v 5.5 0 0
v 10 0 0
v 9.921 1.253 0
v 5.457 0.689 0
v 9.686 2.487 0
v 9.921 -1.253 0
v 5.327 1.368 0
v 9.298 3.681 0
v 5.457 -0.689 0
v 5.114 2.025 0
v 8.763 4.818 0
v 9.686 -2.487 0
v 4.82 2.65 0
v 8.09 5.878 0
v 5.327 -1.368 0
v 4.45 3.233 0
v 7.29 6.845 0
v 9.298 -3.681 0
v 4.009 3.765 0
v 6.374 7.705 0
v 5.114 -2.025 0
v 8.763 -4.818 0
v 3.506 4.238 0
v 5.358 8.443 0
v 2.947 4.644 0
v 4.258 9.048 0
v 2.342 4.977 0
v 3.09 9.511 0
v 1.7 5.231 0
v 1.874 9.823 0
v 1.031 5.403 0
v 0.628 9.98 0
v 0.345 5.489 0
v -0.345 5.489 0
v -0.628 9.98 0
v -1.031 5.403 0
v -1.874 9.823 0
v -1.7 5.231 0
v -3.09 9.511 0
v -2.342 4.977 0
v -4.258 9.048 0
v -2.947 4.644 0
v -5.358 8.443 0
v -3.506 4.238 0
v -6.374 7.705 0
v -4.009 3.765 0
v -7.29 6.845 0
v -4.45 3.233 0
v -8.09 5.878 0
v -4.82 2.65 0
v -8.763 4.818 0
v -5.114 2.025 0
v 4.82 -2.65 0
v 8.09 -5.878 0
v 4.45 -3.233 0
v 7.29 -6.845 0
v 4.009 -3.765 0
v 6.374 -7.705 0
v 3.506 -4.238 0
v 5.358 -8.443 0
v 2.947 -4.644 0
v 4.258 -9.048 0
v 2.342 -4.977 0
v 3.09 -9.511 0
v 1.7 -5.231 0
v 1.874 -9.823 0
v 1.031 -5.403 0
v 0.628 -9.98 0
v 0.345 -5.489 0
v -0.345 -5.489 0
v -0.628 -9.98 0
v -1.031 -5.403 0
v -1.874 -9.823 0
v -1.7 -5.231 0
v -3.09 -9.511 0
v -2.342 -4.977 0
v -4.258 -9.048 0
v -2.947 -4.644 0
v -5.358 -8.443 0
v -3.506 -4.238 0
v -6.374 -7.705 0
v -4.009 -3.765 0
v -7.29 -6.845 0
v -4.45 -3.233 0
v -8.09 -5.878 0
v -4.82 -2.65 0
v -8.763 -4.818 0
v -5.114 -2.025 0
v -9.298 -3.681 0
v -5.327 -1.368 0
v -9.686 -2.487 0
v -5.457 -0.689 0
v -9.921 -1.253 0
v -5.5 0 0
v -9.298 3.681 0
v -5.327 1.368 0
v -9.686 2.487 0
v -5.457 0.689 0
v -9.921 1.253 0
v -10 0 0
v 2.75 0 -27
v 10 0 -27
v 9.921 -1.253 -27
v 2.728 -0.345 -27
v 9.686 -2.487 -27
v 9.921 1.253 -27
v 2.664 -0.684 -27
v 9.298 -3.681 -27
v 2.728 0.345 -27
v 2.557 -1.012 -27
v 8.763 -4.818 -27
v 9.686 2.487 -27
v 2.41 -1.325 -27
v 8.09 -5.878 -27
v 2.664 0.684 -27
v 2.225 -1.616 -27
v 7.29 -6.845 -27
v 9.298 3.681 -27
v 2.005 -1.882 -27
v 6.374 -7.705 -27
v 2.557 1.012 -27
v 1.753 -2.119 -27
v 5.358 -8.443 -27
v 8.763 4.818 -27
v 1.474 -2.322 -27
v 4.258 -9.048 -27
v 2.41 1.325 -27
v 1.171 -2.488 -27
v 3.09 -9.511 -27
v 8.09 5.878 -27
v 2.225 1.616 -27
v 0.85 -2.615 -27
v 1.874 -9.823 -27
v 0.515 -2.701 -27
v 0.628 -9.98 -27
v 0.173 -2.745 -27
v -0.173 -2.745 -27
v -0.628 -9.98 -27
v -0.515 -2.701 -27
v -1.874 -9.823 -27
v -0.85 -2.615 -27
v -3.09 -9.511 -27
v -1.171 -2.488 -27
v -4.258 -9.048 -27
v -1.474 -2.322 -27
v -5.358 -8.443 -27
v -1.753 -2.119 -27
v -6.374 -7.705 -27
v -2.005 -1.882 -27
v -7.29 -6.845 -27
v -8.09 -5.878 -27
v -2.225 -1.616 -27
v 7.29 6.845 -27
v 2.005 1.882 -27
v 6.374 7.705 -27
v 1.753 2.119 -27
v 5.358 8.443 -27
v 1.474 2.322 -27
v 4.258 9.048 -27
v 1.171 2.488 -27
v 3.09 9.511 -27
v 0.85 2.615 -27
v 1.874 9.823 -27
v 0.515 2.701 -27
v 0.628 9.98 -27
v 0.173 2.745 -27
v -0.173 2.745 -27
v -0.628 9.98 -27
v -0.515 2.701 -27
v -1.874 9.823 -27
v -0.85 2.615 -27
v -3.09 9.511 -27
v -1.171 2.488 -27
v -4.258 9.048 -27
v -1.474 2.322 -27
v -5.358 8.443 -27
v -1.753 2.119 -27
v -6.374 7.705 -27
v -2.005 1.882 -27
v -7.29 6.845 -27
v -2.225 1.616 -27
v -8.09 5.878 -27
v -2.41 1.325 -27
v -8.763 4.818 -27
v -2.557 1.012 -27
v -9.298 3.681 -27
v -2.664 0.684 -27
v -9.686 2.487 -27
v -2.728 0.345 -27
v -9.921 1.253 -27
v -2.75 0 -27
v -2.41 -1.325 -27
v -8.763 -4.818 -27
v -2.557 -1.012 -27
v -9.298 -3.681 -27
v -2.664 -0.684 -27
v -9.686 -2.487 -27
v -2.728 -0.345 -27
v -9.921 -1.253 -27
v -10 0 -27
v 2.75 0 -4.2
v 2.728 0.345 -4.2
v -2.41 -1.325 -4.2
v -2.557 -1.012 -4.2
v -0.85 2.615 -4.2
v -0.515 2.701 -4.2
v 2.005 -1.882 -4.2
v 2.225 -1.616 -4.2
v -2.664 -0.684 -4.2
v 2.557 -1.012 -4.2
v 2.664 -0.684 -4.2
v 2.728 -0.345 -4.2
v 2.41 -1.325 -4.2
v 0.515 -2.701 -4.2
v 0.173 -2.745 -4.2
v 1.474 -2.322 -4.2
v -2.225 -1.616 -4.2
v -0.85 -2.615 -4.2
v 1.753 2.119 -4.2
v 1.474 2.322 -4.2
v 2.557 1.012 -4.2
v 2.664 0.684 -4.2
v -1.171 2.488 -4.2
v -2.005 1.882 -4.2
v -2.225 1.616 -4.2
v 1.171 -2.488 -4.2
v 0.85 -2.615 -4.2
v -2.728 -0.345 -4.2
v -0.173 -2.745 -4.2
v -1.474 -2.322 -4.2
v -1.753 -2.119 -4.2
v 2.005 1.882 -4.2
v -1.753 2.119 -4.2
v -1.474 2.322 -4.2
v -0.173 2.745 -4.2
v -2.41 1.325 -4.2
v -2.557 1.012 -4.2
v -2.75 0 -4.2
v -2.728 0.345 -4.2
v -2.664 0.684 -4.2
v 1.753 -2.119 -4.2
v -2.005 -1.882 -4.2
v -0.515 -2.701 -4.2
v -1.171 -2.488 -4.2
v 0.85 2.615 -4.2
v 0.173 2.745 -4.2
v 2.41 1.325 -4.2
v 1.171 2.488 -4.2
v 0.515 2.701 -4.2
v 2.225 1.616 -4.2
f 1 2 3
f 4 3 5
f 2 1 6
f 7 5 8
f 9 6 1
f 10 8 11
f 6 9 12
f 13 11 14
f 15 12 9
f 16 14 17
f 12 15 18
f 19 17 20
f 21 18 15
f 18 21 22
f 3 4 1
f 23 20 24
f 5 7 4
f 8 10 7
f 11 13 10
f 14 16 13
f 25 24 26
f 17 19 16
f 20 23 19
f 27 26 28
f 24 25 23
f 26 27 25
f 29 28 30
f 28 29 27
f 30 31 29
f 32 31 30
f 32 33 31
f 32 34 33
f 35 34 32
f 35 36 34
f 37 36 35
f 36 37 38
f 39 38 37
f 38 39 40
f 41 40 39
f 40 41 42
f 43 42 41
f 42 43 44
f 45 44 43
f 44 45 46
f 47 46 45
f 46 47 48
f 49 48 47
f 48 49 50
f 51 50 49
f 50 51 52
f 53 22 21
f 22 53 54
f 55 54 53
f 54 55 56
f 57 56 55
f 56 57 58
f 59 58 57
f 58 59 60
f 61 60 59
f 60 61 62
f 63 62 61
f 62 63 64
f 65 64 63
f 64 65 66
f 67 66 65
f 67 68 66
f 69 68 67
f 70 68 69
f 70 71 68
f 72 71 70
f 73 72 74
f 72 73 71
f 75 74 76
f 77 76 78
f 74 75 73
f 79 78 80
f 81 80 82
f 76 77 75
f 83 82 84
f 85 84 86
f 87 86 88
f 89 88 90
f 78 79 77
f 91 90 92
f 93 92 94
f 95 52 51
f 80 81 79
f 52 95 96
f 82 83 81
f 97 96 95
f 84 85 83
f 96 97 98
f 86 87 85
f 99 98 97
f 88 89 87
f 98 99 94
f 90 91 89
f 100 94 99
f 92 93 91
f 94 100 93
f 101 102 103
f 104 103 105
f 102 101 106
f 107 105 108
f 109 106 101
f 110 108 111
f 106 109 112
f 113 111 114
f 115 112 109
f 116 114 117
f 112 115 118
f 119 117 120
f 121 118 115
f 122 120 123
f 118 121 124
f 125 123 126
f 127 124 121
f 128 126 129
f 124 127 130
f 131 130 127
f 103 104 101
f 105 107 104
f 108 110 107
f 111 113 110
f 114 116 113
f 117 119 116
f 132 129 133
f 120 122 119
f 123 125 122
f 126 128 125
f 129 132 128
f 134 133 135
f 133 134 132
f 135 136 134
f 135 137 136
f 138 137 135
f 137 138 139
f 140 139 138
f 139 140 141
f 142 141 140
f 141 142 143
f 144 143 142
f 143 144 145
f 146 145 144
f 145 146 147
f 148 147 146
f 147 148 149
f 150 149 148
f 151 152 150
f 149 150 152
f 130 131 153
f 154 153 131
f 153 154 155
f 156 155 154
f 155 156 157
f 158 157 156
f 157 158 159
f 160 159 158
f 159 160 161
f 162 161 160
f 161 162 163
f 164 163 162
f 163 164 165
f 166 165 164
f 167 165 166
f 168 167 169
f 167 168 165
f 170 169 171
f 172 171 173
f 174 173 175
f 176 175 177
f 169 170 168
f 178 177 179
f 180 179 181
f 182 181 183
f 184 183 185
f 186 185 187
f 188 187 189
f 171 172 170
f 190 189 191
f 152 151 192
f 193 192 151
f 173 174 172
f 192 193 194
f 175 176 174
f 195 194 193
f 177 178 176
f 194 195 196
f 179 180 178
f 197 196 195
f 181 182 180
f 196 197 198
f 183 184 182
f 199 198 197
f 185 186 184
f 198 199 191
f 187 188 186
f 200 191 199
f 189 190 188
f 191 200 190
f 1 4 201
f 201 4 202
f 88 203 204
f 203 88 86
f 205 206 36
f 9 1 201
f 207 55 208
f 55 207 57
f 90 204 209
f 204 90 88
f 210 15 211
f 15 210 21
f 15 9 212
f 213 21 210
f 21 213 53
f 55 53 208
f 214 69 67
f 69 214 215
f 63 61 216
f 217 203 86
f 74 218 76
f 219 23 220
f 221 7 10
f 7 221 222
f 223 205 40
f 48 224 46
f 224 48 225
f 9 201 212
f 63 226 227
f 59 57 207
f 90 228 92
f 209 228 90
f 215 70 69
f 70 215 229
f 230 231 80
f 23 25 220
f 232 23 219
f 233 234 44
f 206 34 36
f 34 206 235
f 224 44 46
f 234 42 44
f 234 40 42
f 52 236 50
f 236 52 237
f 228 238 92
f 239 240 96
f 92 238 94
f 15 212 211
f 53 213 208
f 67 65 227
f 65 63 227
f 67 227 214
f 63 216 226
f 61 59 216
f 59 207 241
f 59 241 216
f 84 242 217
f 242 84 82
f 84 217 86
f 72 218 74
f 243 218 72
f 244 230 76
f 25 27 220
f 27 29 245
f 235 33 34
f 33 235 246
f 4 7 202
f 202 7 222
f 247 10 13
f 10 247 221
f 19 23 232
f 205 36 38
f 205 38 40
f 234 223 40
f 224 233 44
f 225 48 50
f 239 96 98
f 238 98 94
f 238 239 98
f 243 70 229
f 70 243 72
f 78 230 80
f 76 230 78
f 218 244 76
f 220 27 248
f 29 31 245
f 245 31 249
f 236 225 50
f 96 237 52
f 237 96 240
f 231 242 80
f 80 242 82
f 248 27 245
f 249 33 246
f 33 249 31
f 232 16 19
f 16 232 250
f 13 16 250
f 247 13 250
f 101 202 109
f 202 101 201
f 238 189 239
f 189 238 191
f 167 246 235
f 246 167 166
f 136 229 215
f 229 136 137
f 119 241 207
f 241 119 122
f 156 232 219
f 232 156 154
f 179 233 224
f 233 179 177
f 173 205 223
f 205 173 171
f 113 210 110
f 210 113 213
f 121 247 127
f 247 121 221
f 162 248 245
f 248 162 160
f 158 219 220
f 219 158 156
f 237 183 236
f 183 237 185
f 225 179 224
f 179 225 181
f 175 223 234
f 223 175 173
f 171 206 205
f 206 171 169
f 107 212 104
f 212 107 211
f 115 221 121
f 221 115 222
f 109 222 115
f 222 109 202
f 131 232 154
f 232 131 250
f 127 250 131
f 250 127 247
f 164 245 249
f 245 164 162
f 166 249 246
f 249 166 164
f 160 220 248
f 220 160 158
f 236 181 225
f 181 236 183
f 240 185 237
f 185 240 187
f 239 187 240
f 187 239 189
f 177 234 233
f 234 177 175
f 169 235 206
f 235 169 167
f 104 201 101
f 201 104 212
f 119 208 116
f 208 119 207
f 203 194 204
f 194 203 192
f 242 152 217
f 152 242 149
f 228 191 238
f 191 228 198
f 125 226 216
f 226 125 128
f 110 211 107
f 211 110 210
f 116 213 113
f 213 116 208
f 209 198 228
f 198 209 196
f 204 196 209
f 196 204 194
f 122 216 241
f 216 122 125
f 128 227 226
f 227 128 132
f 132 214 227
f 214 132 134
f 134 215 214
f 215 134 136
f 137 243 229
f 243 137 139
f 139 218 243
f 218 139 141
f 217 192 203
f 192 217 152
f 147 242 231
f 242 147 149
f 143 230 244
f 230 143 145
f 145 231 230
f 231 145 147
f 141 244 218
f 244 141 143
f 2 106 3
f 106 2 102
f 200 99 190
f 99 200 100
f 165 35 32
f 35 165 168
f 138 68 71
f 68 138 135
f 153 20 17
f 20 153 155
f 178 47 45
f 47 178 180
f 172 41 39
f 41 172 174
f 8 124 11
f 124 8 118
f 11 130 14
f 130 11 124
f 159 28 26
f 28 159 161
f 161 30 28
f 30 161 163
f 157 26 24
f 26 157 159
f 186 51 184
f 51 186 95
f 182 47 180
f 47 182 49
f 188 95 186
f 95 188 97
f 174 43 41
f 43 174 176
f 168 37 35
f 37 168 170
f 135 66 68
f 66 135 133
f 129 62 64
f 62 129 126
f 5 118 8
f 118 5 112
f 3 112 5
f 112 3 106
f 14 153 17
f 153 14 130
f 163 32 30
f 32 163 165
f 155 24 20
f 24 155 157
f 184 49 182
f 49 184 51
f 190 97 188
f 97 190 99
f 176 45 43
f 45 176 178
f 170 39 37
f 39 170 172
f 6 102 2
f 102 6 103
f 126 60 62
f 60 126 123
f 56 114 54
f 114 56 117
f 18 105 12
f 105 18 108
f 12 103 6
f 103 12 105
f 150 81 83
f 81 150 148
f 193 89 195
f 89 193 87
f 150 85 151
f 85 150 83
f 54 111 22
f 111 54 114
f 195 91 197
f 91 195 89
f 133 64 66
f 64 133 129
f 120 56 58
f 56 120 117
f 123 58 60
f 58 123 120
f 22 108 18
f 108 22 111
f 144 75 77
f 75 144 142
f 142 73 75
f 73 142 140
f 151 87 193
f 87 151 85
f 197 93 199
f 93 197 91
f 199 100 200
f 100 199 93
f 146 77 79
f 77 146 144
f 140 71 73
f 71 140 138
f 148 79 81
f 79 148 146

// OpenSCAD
$fn = 50;


difference() {
	union() {
		translate(v = [0, 0, -27.0000000000]) {
			cylinder(h = 27, r = 10.0000000000);
		}
	}
	union() {
		translate(v = [0, 0, 0]) {
			rotate(a = [0, 0, 0]) {
				difference() {
					union() {
						#translate(v = [0, 0, -27.0000000000]) {
							cylinder(h = 27, r = 2.2500000000);
						}
						#translate(v = [0, 0, -4.2000000000]) {
							cylinder(h = 4.2000000000, r = 10.0000000000, r1 = 2.7500000000, r2 = 5.5000000000);
						}
						#translate(v = [0, 0, -27.0000000000]) {
							cylinder(h = 27, r = 2.7500000000);
						}
						#translate(v = [0, 0, -27.0000000000]) {
							cylinder(h = 27, r = 2.2500000000);
						}
					}
					union();
				}
			}
		}
	}
}
